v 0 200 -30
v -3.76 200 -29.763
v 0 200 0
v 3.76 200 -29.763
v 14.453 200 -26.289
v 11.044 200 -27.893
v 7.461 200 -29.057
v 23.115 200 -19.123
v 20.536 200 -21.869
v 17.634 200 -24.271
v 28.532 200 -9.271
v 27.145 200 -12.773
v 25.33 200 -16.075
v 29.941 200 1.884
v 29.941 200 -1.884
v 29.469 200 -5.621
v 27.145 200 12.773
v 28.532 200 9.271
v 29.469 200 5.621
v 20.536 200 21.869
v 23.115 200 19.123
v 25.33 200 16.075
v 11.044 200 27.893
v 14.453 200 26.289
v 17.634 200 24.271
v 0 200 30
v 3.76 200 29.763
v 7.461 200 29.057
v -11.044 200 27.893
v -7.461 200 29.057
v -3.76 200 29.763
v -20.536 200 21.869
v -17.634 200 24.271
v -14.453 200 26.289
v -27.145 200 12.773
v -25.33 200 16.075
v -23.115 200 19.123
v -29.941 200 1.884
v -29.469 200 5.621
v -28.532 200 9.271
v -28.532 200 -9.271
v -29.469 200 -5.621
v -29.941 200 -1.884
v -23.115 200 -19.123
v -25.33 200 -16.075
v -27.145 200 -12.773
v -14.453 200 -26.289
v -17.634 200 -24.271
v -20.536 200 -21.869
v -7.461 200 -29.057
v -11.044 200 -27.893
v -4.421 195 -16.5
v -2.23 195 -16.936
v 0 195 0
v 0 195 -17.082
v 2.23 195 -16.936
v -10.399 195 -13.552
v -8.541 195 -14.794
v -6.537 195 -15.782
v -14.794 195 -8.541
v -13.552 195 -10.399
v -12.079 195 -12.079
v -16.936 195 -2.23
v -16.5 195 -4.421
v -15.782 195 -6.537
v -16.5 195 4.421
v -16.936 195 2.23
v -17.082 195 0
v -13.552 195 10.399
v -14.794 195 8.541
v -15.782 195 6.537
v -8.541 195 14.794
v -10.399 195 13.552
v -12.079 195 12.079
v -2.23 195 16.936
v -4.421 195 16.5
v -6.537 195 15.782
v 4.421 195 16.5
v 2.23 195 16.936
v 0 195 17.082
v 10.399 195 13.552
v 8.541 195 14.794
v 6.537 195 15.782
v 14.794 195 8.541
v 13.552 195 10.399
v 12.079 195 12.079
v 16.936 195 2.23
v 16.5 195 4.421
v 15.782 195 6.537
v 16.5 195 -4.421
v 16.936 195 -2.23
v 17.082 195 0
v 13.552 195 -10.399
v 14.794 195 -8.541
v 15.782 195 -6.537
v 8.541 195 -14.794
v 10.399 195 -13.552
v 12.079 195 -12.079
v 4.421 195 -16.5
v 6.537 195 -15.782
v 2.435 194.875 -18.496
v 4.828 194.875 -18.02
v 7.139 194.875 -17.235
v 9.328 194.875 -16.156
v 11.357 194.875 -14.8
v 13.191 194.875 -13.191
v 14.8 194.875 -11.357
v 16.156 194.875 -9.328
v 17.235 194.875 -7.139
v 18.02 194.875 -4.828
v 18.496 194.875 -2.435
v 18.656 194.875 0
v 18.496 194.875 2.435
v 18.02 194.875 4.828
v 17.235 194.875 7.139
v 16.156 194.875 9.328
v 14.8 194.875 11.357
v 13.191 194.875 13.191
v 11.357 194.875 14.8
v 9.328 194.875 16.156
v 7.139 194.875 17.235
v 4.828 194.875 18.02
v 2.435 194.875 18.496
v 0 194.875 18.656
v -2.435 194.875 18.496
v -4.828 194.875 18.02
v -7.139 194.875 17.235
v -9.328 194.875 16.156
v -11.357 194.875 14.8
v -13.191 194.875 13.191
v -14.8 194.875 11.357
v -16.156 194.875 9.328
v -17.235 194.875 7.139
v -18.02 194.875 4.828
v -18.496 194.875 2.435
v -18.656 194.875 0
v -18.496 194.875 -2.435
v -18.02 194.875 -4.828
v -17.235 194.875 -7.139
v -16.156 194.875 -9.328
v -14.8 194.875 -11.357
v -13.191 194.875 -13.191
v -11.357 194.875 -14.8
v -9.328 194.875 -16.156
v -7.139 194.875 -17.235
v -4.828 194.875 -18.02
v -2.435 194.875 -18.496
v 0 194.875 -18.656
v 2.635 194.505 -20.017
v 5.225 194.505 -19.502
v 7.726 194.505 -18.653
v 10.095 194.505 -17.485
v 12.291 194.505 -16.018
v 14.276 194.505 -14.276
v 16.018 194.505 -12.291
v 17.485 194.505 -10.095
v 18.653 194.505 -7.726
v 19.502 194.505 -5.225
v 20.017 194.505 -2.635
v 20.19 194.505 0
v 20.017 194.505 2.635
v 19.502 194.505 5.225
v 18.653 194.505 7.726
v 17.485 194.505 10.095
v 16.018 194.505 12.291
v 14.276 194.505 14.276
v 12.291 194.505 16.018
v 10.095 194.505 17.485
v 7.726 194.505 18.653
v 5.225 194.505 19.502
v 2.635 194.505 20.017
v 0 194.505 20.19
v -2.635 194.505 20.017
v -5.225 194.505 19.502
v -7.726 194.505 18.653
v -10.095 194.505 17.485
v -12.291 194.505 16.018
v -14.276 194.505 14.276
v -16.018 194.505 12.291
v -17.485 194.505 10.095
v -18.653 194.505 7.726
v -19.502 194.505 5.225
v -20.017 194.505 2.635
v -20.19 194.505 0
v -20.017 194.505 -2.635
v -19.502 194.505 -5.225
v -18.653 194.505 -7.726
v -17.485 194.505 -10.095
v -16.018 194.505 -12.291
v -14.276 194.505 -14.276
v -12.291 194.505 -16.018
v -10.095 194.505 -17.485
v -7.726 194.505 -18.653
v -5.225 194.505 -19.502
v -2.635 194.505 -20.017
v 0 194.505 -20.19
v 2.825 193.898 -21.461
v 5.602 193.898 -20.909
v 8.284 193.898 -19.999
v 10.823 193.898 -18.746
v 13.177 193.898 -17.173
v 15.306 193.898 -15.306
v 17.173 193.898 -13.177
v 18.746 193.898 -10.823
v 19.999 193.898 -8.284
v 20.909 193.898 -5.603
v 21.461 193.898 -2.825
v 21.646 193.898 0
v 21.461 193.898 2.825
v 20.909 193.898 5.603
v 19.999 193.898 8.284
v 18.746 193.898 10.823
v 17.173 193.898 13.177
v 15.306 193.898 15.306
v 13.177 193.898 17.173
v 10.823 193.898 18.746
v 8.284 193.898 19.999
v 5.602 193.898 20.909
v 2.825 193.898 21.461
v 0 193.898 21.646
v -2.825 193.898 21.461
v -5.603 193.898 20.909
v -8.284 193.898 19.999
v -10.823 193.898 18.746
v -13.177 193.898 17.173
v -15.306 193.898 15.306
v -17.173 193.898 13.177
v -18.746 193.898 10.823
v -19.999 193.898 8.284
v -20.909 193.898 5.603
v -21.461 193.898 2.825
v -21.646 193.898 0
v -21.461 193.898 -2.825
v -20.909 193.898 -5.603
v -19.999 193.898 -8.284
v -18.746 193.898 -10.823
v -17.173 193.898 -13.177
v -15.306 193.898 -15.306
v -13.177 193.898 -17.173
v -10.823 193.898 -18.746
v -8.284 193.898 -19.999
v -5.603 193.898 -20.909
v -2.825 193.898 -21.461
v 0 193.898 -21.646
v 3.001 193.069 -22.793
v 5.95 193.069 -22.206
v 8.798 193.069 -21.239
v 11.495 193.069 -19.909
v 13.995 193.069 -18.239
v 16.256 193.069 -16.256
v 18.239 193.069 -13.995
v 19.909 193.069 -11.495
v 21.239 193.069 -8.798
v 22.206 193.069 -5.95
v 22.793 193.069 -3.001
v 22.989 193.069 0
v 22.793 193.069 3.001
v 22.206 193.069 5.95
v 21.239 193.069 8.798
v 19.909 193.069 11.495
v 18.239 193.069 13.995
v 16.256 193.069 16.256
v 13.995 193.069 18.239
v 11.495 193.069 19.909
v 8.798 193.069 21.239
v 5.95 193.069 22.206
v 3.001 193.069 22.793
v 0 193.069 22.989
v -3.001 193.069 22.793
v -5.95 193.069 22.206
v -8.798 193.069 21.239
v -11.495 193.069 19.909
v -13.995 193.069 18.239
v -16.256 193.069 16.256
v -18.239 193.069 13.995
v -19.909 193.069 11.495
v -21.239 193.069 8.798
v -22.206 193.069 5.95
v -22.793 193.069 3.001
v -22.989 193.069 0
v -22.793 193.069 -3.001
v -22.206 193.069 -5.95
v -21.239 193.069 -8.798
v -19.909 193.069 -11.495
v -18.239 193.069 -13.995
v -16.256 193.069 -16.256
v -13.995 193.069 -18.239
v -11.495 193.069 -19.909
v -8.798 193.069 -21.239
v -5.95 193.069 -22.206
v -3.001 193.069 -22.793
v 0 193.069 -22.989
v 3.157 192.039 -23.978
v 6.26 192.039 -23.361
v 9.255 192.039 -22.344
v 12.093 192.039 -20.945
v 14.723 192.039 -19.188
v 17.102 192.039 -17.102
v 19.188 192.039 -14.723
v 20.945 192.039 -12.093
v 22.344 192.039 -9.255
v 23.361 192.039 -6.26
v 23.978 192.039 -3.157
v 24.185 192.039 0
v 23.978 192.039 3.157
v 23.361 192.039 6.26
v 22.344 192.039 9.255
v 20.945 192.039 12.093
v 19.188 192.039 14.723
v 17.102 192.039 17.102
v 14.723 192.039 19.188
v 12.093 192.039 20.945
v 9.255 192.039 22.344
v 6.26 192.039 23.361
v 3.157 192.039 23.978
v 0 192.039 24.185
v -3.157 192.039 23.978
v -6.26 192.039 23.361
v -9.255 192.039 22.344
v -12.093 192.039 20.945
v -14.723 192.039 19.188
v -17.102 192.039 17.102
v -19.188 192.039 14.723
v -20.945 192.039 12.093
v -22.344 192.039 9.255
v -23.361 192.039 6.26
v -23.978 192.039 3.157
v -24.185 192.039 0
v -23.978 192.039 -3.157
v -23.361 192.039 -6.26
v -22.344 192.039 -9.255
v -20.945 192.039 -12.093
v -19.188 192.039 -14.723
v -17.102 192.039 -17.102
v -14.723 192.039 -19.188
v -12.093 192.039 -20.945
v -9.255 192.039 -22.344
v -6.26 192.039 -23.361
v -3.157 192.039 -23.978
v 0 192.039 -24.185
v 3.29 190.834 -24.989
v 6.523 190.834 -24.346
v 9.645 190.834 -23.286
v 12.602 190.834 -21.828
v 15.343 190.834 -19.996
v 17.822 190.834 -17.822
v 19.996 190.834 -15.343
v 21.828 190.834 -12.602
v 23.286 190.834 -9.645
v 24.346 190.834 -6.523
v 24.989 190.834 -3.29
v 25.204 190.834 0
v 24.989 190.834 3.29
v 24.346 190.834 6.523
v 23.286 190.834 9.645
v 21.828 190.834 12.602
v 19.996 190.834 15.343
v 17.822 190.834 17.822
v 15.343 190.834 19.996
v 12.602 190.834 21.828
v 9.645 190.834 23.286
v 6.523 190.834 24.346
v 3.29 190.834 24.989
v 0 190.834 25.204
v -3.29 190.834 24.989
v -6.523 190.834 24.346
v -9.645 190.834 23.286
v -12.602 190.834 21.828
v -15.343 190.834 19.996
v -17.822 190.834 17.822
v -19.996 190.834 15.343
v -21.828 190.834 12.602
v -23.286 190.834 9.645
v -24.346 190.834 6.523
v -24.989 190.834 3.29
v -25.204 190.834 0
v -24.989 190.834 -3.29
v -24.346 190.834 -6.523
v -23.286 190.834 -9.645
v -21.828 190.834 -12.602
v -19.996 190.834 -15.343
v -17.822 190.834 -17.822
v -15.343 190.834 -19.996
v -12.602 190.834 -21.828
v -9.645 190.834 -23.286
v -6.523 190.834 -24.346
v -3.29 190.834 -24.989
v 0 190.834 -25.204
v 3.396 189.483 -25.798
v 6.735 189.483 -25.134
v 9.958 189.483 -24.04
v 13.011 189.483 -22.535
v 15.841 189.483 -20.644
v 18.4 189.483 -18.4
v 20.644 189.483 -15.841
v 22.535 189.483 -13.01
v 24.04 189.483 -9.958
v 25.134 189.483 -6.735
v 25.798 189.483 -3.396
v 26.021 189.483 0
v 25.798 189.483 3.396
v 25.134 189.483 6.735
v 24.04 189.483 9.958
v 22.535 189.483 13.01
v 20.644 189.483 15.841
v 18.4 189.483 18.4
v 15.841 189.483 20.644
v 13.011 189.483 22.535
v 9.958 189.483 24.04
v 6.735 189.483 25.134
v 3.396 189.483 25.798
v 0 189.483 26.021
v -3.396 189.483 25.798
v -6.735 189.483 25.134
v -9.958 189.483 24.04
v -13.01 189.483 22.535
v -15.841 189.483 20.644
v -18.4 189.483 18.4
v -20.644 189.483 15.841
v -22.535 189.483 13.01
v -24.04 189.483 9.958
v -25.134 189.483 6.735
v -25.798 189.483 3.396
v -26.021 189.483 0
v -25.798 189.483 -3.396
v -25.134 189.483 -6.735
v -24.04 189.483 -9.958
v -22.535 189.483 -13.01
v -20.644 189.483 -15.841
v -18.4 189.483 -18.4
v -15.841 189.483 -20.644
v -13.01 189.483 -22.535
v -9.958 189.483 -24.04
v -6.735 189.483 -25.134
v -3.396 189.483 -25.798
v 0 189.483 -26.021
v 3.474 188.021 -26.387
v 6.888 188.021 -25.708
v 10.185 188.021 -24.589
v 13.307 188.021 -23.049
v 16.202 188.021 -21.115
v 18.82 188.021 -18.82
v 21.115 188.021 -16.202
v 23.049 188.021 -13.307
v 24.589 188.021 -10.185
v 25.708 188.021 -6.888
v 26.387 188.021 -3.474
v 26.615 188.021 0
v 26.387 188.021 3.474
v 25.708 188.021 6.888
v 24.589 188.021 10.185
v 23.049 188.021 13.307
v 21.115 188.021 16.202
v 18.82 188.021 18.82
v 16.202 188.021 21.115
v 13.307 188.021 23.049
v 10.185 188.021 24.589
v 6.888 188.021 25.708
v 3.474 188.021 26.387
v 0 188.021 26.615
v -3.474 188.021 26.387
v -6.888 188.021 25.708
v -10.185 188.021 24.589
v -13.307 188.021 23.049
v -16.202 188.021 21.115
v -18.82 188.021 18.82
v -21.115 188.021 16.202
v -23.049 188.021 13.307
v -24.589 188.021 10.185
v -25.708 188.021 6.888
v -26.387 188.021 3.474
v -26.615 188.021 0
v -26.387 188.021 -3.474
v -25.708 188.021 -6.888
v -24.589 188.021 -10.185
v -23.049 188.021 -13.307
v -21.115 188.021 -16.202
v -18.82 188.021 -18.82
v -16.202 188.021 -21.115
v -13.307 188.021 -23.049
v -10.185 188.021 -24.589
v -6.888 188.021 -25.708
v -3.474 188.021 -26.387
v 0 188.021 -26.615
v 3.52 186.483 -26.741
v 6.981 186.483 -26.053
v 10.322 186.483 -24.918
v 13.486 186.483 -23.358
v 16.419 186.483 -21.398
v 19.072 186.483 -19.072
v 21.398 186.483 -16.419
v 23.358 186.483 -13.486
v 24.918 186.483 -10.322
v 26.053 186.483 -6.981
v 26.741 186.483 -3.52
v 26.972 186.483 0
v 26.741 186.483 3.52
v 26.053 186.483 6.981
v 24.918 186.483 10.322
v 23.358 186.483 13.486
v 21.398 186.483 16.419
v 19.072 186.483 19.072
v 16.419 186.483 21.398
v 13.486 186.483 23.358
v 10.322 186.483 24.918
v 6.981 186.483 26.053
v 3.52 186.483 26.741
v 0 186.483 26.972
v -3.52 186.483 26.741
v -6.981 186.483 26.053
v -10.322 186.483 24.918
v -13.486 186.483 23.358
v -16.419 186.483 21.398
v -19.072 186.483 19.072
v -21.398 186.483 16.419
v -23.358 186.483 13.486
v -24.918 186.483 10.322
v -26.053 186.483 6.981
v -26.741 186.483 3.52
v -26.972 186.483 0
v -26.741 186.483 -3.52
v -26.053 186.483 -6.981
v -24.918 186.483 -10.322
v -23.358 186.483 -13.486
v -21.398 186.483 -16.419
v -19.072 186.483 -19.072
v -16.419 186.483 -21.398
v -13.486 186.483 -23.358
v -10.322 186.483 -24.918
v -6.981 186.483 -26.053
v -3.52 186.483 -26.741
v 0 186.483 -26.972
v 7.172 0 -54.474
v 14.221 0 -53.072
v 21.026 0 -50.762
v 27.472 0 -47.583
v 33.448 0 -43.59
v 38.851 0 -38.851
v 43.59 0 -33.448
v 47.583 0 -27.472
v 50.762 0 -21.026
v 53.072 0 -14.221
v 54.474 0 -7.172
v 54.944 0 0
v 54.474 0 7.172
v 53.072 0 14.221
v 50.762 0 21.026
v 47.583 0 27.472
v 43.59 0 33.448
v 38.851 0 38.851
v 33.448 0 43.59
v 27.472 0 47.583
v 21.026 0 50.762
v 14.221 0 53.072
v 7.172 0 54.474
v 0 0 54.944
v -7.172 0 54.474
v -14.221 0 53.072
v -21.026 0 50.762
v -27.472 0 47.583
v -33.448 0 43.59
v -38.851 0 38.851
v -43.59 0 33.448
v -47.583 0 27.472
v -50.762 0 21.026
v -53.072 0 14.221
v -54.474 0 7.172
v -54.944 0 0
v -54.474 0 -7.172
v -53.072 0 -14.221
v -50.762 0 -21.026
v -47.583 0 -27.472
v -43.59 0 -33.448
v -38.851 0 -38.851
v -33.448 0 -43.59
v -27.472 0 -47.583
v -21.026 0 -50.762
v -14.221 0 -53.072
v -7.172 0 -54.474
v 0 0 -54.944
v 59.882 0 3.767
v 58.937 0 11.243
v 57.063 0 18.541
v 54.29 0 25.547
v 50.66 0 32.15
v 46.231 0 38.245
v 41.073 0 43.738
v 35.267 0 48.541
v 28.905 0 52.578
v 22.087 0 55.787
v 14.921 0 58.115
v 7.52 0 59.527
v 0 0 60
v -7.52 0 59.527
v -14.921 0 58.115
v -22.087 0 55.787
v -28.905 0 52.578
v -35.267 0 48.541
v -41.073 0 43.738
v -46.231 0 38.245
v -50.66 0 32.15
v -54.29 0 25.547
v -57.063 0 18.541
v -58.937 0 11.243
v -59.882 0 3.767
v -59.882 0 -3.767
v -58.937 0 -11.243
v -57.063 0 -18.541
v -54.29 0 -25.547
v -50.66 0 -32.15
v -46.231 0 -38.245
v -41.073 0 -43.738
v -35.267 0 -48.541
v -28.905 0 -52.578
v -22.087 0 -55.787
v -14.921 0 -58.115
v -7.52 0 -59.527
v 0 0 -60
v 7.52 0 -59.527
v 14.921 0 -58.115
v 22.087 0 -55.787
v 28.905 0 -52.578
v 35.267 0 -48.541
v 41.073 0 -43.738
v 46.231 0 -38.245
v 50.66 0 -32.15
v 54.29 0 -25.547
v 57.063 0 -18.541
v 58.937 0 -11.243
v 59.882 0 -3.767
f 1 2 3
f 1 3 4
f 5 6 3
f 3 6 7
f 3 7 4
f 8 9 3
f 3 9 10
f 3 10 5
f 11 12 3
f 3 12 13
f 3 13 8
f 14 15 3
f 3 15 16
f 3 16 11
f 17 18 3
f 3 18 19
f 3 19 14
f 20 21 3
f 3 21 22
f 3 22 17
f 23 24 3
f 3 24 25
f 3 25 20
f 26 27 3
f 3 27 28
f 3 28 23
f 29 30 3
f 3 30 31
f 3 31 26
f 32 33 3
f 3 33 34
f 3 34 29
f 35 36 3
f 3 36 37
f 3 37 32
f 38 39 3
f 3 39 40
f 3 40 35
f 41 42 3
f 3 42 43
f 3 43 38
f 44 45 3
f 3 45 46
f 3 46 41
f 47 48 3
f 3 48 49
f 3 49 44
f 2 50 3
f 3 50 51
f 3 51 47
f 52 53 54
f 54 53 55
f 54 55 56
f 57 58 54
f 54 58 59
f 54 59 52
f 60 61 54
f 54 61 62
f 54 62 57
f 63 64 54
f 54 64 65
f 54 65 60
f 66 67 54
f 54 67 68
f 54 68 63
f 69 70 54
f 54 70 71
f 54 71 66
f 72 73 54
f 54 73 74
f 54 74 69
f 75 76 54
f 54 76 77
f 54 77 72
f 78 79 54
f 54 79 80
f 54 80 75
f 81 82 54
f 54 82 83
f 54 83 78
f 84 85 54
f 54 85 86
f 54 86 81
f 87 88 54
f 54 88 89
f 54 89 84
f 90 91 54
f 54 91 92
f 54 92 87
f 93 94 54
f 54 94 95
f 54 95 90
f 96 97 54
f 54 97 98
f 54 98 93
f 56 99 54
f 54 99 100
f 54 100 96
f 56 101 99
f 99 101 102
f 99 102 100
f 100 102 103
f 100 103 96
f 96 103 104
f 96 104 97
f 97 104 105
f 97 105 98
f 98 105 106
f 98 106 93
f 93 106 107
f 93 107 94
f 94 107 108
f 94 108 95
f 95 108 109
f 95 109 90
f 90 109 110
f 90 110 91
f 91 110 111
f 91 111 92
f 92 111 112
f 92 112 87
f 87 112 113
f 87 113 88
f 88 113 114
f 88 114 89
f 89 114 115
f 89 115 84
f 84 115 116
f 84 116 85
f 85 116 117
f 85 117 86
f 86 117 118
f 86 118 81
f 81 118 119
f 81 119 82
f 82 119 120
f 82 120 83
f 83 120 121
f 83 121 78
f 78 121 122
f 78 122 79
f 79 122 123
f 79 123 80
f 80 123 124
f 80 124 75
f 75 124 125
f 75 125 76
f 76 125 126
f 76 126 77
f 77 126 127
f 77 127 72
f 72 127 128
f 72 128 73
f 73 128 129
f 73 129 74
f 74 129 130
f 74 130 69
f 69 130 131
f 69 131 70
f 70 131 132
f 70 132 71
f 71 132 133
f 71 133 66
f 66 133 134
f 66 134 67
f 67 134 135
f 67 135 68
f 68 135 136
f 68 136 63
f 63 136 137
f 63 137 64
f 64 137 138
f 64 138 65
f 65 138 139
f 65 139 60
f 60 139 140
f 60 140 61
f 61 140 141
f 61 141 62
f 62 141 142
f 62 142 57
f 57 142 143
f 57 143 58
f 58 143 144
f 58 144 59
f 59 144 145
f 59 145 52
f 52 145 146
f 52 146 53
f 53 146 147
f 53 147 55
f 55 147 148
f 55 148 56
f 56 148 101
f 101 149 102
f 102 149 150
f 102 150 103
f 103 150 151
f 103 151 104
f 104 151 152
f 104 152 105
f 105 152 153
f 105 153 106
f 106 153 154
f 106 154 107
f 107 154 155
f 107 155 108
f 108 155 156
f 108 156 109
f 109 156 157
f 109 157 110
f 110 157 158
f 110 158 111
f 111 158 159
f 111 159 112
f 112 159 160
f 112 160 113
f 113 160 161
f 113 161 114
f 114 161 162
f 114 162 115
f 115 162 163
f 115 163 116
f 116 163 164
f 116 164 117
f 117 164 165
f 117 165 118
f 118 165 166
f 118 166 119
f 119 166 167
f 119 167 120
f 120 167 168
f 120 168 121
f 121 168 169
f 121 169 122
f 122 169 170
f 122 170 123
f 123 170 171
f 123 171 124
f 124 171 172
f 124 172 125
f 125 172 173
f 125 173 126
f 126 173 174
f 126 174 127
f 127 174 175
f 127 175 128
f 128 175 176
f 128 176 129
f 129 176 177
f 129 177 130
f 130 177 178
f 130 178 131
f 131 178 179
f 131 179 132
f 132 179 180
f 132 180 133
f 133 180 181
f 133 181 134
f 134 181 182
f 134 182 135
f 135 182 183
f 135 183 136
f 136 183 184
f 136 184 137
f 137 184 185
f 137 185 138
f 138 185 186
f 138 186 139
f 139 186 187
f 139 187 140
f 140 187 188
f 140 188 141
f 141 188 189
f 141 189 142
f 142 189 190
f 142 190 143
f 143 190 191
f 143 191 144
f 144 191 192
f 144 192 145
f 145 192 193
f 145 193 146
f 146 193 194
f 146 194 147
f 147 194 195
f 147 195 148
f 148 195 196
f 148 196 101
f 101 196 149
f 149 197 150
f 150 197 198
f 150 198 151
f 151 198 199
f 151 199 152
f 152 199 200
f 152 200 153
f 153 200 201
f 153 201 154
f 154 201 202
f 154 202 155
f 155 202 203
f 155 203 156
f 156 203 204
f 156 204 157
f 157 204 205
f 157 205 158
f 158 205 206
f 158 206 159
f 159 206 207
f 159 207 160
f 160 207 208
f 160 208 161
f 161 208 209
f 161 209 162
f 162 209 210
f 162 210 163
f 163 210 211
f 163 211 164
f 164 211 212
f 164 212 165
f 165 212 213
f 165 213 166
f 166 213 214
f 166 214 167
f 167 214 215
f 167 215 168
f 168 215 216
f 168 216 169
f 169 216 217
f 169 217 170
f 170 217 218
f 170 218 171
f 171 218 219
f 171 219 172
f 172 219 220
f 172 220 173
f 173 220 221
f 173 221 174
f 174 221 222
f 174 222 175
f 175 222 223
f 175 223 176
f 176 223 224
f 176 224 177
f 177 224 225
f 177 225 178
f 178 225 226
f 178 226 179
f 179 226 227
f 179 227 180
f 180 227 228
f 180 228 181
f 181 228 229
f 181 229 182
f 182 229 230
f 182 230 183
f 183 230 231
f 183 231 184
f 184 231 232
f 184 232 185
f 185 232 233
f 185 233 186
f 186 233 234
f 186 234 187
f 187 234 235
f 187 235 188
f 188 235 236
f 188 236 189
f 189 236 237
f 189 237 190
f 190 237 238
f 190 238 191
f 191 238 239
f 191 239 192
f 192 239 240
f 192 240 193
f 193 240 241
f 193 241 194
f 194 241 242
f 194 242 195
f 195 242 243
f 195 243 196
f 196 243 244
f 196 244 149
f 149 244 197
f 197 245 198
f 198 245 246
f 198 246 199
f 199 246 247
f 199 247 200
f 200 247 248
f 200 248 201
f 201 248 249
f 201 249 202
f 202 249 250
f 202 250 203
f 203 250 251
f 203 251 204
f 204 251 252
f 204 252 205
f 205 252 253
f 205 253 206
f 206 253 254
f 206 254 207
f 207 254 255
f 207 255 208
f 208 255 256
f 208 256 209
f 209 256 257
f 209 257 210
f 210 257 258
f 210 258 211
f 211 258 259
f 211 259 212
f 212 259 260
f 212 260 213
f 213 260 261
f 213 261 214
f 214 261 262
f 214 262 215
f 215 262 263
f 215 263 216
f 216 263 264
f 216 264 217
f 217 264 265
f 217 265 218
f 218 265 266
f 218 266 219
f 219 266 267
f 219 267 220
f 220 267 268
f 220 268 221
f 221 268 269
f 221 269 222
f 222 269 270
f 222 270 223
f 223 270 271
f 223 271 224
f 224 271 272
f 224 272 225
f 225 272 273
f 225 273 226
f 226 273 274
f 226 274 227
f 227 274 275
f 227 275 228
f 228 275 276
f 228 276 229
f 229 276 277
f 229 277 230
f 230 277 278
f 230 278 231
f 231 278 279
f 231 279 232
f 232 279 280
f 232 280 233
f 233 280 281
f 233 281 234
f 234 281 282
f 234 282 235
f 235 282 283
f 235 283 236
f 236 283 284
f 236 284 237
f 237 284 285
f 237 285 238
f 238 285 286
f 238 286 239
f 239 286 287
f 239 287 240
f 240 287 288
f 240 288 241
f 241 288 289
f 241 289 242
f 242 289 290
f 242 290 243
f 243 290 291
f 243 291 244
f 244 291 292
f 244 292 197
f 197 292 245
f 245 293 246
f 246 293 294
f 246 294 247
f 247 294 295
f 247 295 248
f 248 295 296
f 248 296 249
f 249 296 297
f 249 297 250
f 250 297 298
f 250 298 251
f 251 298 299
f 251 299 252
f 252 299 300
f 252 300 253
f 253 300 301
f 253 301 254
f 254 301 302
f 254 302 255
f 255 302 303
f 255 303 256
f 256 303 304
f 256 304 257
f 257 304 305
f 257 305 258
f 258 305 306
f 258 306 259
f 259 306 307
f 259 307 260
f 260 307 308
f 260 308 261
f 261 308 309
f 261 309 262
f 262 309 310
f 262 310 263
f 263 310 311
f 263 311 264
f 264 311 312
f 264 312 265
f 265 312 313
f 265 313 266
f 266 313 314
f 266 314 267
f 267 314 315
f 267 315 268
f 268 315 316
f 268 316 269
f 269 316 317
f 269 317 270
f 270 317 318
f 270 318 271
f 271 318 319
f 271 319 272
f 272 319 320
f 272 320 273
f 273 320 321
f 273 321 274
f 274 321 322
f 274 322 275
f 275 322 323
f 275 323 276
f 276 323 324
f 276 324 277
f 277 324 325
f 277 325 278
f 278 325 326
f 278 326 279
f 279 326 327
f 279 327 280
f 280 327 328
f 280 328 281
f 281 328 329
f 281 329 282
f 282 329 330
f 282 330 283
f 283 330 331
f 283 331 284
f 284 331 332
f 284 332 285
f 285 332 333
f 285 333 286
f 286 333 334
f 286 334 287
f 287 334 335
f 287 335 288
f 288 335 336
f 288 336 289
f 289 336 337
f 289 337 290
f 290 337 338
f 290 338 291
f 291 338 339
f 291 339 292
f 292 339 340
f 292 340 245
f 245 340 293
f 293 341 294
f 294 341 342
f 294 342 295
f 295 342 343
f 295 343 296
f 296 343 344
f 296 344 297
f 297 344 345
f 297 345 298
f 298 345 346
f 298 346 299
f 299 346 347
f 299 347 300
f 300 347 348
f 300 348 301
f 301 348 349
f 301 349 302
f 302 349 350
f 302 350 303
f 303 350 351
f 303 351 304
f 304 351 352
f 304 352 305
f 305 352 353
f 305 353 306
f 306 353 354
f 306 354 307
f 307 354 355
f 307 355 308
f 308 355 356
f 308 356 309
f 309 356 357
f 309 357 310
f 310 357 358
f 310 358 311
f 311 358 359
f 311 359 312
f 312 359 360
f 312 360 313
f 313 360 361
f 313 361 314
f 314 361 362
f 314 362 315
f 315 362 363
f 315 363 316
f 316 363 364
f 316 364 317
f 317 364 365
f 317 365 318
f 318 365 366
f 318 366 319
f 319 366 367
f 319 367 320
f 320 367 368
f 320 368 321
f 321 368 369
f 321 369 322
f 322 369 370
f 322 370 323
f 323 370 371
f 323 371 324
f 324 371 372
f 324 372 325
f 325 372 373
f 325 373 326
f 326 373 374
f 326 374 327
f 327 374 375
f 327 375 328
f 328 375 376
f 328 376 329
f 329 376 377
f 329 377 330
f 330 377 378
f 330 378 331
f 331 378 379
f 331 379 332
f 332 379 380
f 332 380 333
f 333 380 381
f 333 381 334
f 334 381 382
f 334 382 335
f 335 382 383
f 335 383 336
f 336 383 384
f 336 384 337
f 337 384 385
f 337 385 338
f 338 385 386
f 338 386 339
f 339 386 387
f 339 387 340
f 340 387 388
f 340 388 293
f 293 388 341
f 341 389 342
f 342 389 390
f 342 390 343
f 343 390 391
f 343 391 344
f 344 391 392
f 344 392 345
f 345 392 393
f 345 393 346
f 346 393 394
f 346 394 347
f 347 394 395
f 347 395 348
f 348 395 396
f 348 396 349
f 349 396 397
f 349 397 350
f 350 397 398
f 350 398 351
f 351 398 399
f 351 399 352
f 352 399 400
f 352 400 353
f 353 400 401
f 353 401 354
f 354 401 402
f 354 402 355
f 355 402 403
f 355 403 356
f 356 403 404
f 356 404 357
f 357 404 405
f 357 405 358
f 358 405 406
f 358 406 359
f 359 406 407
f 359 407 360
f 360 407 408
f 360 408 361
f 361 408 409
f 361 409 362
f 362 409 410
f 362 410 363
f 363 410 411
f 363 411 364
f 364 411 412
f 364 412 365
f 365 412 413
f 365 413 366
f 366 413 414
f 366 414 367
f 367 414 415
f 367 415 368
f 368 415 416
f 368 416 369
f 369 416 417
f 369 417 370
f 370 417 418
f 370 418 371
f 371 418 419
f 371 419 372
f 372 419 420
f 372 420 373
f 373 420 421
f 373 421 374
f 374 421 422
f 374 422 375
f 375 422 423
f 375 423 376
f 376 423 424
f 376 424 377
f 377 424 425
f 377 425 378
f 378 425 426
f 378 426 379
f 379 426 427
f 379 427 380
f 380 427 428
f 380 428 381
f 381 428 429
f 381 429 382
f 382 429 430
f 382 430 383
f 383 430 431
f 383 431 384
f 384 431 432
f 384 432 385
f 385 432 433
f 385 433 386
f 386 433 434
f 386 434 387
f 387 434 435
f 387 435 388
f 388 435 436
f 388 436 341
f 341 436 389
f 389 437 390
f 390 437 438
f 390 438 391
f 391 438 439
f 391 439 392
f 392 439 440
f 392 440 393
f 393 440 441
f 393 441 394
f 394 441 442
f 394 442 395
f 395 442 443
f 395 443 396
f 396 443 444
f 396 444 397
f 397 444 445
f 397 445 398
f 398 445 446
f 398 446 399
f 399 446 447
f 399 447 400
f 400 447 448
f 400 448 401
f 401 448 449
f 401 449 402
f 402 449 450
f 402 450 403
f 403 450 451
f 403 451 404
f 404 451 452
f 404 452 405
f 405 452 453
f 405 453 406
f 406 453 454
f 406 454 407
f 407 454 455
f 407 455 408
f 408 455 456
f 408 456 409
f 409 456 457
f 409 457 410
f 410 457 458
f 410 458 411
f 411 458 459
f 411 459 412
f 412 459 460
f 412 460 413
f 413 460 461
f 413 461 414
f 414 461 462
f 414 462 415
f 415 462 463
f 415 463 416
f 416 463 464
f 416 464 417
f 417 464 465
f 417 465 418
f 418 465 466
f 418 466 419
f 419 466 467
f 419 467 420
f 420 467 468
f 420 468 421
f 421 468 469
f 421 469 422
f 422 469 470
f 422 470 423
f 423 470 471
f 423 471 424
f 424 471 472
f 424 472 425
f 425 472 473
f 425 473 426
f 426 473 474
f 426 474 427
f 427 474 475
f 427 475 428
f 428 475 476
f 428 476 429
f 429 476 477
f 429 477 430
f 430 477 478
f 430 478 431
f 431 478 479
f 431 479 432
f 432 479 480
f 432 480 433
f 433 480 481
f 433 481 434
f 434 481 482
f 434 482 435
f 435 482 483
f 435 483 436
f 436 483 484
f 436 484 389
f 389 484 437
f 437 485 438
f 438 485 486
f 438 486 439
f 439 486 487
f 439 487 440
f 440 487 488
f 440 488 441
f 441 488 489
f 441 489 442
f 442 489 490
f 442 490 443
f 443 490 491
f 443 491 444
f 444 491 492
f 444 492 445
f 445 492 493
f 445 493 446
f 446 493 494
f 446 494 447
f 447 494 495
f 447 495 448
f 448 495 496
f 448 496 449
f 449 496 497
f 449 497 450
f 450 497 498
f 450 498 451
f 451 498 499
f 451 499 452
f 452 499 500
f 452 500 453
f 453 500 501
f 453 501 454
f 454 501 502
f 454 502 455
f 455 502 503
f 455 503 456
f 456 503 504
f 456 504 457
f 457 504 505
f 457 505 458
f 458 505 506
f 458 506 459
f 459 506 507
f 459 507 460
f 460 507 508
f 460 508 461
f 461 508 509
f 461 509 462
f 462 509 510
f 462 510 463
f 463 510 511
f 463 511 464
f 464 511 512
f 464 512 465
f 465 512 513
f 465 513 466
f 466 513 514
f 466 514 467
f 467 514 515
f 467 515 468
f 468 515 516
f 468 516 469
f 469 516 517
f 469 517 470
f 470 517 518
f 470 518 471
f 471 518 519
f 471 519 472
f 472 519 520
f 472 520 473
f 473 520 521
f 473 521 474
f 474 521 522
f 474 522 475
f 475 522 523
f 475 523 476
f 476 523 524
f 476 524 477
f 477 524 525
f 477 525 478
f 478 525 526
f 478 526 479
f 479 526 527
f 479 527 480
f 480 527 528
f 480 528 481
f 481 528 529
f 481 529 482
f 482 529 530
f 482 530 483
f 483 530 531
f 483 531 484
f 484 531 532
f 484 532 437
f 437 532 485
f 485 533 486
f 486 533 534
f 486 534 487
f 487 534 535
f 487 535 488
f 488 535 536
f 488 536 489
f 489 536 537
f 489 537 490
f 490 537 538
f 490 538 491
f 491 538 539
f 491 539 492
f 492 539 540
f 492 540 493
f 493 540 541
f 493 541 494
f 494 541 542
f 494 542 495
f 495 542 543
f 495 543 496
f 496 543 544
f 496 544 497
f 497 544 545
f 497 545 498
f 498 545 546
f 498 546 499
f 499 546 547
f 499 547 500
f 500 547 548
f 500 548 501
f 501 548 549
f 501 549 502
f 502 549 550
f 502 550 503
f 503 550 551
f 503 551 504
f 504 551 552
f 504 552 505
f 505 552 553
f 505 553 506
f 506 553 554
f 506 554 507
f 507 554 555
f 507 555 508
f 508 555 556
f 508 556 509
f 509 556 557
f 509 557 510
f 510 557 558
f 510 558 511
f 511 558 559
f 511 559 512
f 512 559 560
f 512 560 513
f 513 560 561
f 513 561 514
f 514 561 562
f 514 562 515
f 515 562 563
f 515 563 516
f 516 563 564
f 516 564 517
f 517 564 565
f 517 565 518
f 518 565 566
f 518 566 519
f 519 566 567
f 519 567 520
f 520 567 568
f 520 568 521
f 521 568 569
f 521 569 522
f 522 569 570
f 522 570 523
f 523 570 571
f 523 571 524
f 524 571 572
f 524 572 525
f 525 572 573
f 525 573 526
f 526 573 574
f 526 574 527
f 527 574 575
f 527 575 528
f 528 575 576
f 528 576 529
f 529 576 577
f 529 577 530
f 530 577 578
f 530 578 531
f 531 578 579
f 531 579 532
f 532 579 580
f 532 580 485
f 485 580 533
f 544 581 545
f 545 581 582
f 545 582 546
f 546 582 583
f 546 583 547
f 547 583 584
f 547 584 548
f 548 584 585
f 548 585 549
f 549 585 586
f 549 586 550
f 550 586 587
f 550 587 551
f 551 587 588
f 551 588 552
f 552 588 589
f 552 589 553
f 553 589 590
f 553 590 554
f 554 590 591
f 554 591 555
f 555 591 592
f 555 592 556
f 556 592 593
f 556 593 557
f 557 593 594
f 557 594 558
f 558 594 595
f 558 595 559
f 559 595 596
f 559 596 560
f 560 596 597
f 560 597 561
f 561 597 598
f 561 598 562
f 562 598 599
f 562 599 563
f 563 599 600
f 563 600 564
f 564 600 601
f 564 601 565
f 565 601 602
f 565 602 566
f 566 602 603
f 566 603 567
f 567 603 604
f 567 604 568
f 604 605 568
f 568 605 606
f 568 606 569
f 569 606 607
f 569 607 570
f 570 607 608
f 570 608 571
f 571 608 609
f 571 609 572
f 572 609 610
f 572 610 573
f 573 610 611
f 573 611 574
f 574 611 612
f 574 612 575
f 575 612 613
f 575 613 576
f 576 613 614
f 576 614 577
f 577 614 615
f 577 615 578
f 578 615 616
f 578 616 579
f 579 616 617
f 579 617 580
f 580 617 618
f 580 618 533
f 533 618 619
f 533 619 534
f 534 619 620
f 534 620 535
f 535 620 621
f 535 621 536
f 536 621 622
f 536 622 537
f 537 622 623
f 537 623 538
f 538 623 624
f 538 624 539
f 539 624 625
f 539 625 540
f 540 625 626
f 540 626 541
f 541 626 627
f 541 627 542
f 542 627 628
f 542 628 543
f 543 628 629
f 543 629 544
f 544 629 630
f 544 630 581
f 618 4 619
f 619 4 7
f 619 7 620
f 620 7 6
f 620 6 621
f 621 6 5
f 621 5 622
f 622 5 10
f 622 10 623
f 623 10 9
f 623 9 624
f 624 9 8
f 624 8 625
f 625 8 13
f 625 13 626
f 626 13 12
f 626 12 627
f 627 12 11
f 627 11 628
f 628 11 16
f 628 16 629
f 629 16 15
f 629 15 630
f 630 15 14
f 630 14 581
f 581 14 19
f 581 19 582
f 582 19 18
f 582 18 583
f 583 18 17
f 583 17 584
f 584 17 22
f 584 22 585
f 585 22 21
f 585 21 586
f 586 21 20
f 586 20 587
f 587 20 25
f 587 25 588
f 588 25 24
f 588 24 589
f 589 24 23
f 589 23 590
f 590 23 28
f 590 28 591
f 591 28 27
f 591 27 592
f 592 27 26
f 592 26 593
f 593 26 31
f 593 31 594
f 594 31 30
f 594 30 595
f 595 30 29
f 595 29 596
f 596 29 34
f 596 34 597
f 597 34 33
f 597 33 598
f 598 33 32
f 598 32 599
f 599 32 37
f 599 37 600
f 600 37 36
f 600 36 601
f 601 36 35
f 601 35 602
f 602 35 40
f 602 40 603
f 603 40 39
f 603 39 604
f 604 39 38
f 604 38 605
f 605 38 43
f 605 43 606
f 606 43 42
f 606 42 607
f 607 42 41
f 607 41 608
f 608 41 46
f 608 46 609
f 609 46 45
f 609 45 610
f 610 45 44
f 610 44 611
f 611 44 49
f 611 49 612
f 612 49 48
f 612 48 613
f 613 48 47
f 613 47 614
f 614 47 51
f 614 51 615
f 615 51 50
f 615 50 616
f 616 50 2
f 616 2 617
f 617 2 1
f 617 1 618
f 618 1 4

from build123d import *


with BuildPart() as part:
    # Sketch3 → Revolve1 (revolve)
    with BuildSketch(Plane.XY):
        with BuildLine():
            Line((-41.971552217, 86.483404529), (-54.944062896, 0))
            Line((-54.944062896, 0), (-60, 0))
            Line((-60, 0), (-30, 200))
            Line((-30, 200), (0, 200))
            Line((0, 200), (0, 195))
            Line((0, 195), (-17.082188688, 195))
            ThreePointArc((-17.082188688, 195), (-23.607752062, 192.577402104), (-26.971552217, 186.483404529))
            Line((-26.971552217, 186.483404529), (-41.971552217, 86.483404529))
        make_face()
    revolve(axis=Axis((0, 0, 0), (0, 1, 0)))


solid = part.part
